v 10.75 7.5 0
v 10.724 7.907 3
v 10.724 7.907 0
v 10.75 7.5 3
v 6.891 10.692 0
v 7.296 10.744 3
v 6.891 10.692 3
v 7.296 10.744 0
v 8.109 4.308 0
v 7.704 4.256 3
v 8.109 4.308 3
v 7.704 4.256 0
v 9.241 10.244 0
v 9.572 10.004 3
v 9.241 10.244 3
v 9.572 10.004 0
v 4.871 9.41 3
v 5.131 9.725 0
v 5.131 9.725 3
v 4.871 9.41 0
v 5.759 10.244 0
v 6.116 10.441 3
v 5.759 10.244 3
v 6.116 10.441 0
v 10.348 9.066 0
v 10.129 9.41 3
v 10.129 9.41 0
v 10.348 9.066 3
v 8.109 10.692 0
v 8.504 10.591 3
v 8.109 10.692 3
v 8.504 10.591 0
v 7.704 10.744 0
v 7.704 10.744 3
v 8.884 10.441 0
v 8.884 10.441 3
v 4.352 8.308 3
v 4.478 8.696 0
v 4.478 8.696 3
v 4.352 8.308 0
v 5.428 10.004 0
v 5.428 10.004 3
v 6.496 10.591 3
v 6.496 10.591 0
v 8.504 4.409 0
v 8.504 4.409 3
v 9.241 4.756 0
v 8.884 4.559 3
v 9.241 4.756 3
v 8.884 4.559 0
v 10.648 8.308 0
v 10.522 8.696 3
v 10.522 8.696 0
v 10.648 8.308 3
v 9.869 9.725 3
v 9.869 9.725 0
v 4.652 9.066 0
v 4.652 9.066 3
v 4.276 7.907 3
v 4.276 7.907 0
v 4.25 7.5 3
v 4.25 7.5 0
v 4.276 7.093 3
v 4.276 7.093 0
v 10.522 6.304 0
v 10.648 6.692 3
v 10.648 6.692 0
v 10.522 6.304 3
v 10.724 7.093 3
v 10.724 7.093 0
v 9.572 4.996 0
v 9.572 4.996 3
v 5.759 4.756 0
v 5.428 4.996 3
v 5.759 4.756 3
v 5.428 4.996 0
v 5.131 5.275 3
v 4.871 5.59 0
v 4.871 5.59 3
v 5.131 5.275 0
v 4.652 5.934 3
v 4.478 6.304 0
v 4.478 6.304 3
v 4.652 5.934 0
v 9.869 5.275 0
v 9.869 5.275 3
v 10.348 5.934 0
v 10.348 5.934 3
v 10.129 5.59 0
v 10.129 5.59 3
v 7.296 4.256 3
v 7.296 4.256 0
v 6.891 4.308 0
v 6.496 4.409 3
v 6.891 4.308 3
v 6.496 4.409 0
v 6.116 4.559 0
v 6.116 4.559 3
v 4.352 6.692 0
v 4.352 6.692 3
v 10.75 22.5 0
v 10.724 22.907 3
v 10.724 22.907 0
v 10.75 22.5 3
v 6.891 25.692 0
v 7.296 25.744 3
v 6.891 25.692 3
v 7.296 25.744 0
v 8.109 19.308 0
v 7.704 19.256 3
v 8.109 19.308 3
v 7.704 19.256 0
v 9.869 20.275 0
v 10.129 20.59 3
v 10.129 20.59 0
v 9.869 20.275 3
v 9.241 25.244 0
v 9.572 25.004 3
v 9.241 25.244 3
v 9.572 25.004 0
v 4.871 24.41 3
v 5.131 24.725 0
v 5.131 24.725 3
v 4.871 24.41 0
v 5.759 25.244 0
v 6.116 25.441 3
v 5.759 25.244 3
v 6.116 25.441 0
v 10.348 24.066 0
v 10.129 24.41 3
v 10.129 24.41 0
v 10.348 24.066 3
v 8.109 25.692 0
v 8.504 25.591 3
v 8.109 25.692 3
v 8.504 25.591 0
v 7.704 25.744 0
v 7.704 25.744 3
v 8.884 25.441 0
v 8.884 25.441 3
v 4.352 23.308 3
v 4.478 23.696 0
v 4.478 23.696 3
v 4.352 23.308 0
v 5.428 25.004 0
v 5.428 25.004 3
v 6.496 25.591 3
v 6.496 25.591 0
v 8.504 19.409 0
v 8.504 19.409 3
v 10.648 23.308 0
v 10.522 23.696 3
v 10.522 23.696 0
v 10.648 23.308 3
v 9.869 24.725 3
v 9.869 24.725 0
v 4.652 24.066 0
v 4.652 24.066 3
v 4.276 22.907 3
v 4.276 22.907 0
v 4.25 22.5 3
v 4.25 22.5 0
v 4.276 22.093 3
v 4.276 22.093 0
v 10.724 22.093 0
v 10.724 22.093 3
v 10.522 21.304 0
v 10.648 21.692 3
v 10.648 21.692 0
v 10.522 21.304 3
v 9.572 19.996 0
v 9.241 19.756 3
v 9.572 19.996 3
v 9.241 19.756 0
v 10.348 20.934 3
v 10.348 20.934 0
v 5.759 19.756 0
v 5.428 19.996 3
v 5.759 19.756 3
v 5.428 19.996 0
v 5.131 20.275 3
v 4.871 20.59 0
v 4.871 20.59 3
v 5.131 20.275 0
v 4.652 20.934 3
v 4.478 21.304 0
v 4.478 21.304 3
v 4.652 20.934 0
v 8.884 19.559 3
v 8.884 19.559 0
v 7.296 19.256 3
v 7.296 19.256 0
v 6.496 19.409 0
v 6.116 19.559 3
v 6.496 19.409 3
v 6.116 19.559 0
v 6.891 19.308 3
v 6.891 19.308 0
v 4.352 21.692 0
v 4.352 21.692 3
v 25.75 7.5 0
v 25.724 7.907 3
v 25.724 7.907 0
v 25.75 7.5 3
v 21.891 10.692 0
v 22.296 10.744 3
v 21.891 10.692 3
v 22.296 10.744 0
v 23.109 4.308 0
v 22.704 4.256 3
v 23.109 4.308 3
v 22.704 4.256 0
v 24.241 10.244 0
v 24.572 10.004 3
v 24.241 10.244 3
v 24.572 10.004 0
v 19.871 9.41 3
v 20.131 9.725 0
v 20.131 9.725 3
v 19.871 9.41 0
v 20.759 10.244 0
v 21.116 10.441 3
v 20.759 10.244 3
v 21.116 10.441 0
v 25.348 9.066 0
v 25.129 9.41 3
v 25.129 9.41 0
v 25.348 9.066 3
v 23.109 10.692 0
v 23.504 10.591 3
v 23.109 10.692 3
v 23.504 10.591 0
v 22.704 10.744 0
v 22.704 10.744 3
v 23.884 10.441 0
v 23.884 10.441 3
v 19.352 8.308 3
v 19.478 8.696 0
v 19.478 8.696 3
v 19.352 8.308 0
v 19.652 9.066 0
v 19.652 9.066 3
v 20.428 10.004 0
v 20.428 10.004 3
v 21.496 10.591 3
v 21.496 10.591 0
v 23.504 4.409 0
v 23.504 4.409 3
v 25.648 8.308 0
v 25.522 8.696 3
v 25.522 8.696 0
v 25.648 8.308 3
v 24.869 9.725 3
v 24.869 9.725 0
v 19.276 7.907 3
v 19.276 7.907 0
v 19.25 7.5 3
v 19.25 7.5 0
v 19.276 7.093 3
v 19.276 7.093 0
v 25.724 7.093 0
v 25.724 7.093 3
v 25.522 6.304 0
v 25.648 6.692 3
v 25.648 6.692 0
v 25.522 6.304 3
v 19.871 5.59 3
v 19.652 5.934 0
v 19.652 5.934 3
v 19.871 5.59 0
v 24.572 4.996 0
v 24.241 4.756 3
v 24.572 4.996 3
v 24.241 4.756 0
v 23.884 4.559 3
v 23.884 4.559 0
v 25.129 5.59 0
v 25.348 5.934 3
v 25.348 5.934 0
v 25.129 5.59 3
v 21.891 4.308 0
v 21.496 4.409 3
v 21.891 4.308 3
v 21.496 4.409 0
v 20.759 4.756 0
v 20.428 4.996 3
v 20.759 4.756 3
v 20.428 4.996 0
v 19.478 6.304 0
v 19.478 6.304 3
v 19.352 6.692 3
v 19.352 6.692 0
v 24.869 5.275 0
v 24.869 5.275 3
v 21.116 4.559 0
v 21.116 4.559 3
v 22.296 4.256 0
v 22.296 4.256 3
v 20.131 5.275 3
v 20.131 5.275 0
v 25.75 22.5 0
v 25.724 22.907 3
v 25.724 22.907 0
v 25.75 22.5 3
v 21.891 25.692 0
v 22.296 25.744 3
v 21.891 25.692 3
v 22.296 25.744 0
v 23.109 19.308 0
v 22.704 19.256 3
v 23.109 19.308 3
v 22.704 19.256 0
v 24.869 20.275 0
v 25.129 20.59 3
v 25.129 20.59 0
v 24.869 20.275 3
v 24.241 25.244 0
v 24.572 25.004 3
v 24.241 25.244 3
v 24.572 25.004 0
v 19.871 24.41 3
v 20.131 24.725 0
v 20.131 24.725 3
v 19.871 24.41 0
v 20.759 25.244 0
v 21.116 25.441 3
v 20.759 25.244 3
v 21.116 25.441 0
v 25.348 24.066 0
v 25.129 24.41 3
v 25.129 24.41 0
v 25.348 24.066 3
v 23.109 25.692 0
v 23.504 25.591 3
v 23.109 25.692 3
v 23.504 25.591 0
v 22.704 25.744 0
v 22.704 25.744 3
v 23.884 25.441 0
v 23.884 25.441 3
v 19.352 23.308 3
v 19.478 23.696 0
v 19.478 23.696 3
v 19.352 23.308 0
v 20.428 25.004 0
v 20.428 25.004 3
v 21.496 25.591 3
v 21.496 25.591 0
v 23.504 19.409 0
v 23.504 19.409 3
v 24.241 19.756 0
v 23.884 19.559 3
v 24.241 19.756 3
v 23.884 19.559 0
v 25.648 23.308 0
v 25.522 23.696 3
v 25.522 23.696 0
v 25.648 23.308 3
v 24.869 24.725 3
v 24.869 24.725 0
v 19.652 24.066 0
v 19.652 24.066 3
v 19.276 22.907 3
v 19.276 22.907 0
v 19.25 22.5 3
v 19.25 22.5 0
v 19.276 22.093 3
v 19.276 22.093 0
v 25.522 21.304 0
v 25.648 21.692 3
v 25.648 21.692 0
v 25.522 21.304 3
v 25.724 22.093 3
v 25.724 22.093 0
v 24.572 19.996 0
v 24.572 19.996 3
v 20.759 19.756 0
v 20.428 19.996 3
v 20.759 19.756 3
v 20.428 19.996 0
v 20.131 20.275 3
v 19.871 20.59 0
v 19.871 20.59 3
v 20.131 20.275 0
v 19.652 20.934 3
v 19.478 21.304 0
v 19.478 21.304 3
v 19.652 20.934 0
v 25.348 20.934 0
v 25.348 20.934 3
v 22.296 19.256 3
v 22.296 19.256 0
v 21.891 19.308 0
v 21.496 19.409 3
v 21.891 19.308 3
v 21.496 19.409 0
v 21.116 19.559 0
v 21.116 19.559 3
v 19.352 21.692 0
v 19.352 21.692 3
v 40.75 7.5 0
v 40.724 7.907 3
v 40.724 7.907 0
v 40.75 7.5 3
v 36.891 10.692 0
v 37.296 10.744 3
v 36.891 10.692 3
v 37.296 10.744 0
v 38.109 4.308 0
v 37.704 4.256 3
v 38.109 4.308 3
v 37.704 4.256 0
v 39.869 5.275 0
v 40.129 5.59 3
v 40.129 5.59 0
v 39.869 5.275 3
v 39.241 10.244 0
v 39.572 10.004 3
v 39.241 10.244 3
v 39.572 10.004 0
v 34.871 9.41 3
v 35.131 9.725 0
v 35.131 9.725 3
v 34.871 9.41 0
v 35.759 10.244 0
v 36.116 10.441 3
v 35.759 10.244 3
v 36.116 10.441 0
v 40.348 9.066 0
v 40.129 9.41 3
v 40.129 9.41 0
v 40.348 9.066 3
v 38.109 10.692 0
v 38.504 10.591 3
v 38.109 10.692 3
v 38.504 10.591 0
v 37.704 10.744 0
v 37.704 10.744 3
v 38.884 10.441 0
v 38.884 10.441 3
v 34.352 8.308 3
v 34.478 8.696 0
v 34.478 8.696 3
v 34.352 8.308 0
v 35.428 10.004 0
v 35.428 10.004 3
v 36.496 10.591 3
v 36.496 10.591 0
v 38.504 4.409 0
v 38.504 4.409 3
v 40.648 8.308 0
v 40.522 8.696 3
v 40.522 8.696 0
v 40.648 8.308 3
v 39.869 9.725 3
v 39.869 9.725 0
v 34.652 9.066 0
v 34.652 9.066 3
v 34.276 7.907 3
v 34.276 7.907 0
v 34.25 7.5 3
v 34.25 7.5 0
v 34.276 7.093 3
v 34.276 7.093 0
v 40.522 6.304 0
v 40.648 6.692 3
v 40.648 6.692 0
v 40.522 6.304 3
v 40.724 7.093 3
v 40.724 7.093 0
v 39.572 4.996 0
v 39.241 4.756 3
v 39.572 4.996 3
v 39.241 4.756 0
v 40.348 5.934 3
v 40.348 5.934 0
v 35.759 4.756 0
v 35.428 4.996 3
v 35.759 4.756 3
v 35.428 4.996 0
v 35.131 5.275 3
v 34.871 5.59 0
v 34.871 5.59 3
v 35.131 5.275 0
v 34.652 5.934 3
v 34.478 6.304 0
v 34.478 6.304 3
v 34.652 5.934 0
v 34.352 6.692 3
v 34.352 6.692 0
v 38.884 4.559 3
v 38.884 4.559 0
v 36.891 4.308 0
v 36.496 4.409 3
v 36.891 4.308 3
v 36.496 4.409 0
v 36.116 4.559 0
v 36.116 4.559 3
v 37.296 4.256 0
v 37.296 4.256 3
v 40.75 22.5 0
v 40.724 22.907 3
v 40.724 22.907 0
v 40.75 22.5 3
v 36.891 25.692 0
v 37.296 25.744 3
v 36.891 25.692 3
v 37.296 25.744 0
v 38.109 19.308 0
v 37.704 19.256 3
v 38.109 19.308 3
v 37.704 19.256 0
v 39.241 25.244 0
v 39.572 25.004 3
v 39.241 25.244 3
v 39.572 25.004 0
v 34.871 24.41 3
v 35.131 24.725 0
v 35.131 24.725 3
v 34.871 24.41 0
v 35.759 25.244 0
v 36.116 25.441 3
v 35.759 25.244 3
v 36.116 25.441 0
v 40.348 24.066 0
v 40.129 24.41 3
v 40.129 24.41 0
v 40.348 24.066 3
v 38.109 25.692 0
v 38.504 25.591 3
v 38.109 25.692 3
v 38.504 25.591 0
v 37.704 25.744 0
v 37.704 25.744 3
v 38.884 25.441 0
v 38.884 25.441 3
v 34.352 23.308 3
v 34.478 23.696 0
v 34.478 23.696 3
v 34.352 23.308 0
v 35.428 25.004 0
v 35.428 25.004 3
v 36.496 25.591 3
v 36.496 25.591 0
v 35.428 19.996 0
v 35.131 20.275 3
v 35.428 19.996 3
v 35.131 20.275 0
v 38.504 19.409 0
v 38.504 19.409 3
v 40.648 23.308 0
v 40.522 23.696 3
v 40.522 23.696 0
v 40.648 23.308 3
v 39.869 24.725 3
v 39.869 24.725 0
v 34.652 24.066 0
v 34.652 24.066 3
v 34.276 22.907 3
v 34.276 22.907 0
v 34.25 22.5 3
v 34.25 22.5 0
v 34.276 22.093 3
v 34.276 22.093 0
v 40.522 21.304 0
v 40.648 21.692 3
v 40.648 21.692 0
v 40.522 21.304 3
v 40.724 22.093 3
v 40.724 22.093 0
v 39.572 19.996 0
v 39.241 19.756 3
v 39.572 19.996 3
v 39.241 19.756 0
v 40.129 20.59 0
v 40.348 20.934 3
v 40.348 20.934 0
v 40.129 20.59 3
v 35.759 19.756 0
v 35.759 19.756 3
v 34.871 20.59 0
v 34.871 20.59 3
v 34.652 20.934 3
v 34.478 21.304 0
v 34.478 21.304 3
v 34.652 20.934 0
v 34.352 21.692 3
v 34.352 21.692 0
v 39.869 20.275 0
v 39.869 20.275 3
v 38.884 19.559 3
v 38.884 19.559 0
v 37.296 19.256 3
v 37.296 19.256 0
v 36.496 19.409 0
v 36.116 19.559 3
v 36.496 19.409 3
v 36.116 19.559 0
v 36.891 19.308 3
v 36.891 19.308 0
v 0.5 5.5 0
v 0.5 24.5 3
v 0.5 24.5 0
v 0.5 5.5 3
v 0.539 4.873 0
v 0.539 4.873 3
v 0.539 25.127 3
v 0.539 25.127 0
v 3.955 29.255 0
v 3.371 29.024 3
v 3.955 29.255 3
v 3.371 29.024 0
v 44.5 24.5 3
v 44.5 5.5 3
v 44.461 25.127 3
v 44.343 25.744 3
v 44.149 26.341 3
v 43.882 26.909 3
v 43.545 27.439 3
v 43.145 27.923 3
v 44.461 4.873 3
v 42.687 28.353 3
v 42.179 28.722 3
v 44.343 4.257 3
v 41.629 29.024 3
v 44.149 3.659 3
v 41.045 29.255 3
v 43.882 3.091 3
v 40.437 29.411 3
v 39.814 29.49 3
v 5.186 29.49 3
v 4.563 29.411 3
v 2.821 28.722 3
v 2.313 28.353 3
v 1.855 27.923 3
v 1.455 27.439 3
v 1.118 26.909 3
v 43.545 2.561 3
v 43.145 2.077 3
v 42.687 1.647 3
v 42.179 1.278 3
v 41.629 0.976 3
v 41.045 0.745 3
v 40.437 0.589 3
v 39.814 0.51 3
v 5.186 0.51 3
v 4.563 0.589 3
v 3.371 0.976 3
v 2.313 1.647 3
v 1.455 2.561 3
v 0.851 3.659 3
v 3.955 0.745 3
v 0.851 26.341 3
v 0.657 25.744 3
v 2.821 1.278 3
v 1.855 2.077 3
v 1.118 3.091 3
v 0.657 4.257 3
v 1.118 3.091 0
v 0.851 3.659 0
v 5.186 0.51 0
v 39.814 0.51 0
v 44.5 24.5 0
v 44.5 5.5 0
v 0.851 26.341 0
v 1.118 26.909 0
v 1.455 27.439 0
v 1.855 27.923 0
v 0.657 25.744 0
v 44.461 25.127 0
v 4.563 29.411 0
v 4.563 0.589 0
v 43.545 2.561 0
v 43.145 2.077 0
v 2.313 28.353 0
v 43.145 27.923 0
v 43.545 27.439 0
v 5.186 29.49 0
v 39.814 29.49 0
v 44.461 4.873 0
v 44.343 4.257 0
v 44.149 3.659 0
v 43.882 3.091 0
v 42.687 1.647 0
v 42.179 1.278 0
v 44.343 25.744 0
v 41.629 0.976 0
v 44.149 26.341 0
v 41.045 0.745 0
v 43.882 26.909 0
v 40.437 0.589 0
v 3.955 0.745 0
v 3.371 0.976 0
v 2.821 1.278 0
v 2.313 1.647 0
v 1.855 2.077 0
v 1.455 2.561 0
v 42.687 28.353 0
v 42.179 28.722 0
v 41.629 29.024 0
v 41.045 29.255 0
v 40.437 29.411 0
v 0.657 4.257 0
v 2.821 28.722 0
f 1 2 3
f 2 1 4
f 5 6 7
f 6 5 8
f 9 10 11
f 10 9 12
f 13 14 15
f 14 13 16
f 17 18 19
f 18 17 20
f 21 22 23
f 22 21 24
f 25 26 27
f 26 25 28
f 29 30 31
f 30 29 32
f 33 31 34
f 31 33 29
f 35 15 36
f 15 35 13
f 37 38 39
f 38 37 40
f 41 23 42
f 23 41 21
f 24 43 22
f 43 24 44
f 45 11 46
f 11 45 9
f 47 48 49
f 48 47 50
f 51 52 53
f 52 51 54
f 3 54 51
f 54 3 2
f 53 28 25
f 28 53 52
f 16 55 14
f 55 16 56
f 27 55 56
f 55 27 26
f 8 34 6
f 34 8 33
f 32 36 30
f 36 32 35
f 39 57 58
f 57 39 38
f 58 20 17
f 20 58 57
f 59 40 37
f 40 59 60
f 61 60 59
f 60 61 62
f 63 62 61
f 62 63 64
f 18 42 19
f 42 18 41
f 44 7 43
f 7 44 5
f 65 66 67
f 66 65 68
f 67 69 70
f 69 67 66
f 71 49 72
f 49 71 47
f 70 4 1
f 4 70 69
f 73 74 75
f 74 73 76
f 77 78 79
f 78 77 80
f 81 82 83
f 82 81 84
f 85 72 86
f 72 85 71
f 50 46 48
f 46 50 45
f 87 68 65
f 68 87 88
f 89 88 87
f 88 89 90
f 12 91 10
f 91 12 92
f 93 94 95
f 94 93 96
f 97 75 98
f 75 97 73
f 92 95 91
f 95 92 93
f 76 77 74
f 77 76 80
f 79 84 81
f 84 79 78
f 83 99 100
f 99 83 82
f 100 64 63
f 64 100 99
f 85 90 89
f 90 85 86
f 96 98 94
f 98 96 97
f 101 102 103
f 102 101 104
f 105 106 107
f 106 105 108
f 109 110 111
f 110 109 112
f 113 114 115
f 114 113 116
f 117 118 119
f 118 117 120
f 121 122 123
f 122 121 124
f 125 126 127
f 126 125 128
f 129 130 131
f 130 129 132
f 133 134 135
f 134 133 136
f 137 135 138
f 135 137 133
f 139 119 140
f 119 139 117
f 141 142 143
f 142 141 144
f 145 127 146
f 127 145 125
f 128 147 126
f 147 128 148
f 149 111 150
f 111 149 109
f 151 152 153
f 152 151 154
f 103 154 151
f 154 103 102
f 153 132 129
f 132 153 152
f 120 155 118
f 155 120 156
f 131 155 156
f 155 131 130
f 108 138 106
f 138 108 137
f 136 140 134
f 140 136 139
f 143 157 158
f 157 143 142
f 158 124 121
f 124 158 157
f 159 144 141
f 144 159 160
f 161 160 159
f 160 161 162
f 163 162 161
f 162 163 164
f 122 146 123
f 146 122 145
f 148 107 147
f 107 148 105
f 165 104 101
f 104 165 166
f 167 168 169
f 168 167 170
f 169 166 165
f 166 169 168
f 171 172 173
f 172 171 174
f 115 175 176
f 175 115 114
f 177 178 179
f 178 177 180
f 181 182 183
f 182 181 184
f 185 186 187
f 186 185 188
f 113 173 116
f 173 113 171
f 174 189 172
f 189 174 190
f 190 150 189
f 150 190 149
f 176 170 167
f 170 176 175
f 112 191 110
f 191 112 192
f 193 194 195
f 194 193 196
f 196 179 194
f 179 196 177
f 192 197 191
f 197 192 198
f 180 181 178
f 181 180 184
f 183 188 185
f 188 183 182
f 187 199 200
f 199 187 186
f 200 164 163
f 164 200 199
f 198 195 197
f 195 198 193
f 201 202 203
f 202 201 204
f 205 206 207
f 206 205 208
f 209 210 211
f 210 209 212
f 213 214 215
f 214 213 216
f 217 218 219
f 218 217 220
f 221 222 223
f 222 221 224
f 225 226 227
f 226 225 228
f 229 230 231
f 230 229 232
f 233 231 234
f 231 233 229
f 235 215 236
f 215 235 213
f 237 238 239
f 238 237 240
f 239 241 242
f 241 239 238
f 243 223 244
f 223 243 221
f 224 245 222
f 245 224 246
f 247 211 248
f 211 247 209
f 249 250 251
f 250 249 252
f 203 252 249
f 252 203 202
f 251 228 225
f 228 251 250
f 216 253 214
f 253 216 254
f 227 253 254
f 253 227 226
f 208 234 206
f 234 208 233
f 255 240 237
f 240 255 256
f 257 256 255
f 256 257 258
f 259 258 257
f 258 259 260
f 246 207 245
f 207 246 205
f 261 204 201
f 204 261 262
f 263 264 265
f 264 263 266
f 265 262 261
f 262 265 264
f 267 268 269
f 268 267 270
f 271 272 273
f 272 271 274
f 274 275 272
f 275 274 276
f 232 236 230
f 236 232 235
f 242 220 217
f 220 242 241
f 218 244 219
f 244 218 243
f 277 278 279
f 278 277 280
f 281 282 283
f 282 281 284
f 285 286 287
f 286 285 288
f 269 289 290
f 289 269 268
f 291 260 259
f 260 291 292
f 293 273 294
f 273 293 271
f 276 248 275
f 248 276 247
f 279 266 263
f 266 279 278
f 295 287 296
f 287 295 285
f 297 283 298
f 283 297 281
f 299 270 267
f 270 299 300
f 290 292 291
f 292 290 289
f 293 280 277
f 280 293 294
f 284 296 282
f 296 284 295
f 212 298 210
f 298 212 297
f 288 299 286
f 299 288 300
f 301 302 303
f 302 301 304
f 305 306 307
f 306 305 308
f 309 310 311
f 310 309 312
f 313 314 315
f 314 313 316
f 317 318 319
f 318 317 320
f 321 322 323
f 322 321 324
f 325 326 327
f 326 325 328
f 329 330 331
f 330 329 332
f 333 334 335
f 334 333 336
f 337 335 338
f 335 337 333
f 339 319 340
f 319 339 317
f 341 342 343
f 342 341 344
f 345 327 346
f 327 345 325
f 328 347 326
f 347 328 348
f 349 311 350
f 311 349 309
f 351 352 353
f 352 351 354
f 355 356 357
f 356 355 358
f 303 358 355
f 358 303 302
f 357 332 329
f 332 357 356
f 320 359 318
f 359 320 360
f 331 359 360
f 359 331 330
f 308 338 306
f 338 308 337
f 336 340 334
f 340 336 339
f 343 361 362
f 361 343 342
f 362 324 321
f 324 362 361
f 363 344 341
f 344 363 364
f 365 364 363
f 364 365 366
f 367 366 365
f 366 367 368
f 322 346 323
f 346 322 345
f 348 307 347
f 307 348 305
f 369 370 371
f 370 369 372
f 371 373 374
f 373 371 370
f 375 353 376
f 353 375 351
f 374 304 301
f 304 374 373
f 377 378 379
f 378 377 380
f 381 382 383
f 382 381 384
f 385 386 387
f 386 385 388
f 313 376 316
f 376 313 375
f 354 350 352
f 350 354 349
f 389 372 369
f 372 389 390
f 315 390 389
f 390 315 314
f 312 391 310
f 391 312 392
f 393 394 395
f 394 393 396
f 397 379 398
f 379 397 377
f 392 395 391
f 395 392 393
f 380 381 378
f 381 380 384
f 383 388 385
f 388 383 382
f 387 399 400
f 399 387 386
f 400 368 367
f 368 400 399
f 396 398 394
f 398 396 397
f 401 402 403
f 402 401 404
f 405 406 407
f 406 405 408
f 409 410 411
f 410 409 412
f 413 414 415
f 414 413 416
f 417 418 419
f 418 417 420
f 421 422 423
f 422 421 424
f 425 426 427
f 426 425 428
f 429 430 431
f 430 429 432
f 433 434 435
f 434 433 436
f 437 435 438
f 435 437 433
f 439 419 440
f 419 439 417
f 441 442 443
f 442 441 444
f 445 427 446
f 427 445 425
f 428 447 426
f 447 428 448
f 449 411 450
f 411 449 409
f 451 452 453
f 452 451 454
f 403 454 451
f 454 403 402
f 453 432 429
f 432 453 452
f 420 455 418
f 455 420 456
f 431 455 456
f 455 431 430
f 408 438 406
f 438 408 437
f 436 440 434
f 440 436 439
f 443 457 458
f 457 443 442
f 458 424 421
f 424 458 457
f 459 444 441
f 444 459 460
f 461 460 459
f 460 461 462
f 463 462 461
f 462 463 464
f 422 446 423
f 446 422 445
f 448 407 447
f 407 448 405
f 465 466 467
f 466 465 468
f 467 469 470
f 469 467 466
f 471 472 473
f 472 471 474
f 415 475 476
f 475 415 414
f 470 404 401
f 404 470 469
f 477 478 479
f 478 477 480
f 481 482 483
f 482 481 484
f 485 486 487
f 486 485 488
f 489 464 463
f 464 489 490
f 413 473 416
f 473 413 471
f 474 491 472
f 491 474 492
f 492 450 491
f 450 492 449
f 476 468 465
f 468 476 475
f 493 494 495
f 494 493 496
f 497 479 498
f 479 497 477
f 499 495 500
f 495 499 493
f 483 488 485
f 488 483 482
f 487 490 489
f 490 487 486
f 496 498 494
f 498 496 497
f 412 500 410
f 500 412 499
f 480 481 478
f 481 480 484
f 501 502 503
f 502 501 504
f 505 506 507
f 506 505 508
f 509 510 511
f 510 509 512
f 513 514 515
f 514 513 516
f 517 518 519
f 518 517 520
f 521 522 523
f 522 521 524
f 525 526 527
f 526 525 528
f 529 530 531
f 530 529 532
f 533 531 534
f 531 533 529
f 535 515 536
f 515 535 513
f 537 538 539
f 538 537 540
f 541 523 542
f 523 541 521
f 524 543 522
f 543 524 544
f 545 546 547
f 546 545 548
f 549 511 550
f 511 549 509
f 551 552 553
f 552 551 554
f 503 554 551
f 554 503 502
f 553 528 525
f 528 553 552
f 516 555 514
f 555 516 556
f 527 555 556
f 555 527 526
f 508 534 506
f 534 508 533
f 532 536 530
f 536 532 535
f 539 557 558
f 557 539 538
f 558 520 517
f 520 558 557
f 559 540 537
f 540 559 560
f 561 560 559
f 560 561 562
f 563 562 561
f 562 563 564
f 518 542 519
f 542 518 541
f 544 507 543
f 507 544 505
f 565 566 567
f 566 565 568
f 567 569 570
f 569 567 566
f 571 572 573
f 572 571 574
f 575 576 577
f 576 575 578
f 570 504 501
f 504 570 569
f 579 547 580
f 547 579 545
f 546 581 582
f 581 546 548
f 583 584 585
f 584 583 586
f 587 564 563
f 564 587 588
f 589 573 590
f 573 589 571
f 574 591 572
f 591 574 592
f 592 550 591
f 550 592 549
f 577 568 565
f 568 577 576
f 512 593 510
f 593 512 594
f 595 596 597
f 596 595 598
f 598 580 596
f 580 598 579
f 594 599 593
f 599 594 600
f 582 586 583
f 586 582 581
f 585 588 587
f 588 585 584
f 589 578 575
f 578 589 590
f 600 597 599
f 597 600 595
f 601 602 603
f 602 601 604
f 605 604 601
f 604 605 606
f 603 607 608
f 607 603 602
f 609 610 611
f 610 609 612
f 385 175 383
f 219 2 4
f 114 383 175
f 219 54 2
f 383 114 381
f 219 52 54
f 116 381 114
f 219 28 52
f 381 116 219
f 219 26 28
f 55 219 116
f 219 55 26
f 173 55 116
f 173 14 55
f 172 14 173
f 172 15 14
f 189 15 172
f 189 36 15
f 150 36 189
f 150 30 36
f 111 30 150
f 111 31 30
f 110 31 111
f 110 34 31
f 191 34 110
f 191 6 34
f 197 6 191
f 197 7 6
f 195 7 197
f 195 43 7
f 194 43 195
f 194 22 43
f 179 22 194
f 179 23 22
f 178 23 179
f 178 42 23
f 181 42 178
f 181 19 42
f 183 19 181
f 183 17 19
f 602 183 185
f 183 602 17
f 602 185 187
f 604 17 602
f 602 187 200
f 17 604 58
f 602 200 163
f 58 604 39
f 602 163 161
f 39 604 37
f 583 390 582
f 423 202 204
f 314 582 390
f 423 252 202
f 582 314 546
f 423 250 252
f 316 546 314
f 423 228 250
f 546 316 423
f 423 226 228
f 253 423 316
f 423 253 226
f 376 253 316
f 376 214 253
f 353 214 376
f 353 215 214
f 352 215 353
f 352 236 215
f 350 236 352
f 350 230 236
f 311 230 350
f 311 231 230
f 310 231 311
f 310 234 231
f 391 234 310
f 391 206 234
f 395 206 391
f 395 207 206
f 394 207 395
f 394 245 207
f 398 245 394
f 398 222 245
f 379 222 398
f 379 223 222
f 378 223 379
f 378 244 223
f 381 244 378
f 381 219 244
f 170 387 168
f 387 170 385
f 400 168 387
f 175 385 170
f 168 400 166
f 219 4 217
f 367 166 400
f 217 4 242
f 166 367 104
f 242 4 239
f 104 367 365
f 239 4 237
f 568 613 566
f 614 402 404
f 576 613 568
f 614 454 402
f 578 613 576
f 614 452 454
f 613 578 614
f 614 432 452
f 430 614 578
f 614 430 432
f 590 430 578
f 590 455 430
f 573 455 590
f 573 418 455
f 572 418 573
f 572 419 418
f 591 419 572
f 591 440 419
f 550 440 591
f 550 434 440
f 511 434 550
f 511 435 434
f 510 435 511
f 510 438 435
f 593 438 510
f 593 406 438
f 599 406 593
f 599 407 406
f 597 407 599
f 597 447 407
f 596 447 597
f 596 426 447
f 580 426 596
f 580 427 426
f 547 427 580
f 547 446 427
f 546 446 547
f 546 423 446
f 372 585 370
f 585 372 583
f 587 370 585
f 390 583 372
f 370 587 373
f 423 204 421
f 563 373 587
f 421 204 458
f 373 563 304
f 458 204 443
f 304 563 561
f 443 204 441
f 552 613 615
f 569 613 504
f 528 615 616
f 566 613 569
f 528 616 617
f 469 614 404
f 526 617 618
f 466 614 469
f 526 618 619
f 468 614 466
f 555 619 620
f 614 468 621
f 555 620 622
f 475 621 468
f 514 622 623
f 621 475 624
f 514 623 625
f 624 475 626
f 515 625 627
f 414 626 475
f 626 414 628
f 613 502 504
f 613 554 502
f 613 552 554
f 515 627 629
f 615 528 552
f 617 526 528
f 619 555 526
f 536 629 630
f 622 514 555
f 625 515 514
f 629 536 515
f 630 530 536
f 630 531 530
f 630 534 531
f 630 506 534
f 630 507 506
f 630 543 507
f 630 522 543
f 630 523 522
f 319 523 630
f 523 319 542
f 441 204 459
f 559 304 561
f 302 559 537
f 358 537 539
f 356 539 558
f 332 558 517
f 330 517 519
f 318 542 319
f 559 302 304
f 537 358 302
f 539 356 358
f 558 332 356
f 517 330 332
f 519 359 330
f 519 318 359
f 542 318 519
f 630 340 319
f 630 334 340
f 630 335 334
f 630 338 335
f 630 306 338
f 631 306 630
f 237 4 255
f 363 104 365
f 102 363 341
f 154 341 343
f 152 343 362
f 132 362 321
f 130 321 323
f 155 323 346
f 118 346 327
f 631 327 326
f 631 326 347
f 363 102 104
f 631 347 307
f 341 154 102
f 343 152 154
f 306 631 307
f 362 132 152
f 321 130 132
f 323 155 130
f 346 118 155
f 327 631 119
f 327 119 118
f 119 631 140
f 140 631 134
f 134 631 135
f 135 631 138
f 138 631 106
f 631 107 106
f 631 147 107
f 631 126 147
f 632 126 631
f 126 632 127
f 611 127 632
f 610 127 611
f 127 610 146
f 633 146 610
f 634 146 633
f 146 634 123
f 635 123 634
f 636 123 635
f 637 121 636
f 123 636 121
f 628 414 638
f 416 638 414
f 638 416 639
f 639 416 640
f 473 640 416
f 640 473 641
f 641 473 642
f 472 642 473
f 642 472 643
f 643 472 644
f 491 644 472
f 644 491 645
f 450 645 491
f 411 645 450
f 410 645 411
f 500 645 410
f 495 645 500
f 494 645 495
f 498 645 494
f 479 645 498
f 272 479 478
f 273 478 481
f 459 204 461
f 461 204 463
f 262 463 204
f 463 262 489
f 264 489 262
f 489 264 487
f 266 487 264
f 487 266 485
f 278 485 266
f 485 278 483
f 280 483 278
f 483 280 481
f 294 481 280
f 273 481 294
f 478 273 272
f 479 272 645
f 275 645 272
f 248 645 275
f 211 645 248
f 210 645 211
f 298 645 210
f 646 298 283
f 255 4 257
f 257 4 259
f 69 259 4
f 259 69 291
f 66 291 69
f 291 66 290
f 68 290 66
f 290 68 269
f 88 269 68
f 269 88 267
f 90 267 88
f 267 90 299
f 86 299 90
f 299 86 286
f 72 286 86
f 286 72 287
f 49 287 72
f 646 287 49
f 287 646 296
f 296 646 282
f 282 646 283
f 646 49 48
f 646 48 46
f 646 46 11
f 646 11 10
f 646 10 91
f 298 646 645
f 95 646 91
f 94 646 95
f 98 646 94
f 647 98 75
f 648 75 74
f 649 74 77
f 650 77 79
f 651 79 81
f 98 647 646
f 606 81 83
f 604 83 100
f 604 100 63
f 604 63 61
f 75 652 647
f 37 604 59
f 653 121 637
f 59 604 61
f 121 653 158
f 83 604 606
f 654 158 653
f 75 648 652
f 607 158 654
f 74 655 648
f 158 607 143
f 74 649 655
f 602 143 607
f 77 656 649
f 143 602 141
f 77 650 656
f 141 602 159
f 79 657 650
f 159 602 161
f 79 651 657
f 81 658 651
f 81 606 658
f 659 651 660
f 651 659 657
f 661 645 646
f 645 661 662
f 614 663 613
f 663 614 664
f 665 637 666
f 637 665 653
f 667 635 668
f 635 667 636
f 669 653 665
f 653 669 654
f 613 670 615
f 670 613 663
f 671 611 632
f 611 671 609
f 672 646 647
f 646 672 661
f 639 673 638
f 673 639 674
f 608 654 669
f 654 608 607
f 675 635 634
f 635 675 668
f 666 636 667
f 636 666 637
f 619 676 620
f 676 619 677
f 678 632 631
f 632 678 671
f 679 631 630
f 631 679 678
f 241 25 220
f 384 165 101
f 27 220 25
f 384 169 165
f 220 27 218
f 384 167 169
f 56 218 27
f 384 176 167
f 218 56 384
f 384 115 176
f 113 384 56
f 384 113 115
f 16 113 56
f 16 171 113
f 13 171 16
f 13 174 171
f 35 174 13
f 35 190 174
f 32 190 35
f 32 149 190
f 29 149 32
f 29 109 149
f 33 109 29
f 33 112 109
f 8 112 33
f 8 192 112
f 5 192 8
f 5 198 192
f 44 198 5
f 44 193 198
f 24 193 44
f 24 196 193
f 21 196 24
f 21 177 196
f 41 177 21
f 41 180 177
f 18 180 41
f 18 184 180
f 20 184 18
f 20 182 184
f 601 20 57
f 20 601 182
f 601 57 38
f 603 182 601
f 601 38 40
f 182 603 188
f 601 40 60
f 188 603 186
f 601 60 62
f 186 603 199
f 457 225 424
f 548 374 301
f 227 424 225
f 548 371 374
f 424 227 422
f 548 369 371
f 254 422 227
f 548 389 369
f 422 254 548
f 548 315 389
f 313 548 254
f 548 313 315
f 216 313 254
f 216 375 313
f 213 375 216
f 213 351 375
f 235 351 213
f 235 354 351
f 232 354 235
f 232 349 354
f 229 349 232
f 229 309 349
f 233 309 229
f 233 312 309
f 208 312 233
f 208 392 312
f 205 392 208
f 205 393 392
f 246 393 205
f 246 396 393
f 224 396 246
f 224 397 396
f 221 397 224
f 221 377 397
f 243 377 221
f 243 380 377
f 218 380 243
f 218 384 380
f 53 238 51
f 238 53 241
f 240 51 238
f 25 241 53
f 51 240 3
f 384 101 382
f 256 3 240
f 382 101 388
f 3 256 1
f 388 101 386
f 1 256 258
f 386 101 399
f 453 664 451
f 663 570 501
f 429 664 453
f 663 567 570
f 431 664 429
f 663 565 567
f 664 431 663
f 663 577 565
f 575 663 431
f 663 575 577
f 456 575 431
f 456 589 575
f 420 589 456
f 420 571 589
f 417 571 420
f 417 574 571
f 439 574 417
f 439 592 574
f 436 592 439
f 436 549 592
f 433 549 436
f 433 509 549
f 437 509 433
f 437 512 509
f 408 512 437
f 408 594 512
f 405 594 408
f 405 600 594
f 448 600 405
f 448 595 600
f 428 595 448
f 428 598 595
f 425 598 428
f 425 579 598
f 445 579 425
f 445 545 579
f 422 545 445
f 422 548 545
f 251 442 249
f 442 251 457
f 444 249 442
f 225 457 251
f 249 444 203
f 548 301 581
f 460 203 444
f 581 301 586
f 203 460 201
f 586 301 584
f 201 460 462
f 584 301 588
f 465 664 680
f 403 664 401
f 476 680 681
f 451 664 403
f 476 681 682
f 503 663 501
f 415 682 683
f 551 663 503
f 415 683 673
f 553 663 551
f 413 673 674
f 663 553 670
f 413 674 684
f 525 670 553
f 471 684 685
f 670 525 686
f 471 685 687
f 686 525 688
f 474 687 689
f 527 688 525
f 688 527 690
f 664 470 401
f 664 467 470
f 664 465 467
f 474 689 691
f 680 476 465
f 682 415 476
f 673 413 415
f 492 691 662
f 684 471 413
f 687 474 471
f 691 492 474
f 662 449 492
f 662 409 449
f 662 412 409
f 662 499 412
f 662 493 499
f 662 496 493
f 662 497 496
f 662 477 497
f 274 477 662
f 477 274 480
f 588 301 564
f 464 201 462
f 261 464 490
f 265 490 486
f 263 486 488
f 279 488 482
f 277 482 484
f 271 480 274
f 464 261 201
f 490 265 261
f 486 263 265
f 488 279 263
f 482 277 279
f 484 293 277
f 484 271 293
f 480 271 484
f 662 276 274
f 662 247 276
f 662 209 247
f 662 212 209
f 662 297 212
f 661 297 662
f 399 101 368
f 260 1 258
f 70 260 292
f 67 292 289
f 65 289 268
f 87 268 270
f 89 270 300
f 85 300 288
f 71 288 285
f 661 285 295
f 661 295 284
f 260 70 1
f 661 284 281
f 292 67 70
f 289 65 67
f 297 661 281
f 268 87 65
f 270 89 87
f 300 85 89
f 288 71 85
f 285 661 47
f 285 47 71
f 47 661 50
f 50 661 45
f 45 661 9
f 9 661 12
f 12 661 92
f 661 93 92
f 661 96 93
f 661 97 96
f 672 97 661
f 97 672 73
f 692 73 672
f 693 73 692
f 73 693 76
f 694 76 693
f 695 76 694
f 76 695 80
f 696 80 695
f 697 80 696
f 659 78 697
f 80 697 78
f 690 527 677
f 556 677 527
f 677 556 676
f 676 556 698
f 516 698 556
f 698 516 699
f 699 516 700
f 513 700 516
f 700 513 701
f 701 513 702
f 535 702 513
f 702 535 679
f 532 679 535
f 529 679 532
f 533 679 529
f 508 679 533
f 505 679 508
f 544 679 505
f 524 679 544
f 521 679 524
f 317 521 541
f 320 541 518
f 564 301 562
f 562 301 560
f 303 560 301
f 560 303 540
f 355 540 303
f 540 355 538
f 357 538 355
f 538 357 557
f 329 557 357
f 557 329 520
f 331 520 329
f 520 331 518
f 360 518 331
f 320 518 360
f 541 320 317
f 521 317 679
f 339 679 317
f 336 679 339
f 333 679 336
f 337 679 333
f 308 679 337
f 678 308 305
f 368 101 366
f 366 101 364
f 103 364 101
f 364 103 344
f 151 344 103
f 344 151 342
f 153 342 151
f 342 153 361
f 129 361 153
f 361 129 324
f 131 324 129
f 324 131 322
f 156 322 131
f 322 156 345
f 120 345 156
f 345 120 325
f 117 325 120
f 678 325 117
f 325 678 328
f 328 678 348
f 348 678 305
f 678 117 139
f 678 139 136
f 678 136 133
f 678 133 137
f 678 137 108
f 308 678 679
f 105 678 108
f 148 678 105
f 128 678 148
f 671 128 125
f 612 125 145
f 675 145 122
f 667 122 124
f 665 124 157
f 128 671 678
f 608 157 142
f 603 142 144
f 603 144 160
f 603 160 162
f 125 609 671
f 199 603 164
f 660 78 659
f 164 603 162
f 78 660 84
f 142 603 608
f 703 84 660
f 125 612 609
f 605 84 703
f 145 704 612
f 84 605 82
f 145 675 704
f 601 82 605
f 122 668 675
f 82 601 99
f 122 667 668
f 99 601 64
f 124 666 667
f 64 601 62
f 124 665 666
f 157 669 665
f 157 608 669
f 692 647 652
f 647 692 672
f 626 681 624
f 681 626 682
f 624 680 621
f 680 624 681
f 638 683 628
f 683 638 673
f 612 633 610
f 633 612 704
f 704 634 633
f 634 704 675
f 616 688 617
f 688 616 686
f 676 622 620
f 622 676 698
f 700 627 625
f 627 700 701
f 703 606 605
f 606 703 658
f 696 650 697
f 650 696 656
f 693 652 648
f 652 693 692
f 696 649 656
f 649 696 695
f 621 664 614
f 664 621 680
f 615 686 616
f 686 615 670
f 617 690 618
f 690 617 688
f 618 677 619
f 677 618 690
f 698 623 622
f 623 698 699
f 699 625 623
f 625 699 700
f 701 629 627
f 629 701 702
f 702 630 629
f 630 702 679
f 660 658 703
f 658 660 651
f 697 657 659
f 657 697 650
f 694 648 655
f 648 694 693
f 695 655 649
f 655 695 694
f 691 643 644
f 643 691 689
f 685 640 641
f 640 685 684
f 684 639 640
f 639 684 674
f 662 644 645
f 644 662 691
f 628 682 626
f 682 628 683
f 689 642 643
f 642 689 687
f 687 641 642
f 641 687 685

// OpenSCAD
// Generated by SolidPython 1.1.3 on 2023-01-09 14:53:50
$fn = 50;


difference() {
	union() {
		translate(v = [22.5000000000, 15.0000000000, 0]) {
			rotate(a = [0, 0, 0]) {
				hull() {
					translate(v = [-17.0000000000, 9.5000000000, 0]) {
						rotate(a = [0, 0, 0]) {
							translate(v = [0, 0, 0]) {
								rotate(a = [0, 0, 0]) {
									cylinder(h = 3, r = 5);
								}
							}
						}
					}
					translate(v = [17.0000000000, 9.5000000000, 0]) {
						rotate(a = [0, 0, 0]) {
							translate(v = [0, 0, 0]) {
								rotate(a = [0, 0, 0]) {
									cylinder(h = 3, r = 5);
								}
							}
						}
					}
					translate(v = [-17.0000000000, -9.5000000000, 0]) {
						rotate(a = [0, 0, 0]) {
							translate(v = [0, 0, 0]) {
								rotate(a = [0, 0, 0]) {
									cylinder(h = 3, r = 5);
								}
							}
						}
					}
					translate(v = [17.0000000000, -9.5000000000, 0]) {
						rotate(a = [0, 0, 0]) {
							translate(v = [0, 0, 0]) {
								rotate(a = [0, 0, 0]) {
									cylinder(h = 3, r = 5);
								}
							}
						}
					}
				}
			}
		}
	}
	union() {
		translate(v = [7.5000000000, 7.5000000000, 0]) {
			rotate(a = [0, 0, 0]) {
				translate(v = [0, 0, -50]) {
					rotate(a = [0, 0, 0]) {
						cylinder(h = 100, r = 3.2500000000);
					}
				}
			}
		}
		translate(v = [7.5000000000, 22.5000000000, 0]) {
			rotate(a = [0, 0, 0]) {
				translate(v = [0, 0, -50]) {
					rotate(a = [0, 0, 0]) {
						cylinder(h = 100, r = 3.2500000000);
					}
				}
			}
		}
		translate(v = [22.5000000000, 7.5000000000, 0]) {
			rotate(a = [0, 0, 0]) {
				translate(v = [0, 0, -50]) {
					rotate(a = [0, 0, 0]) {
						cylinder(h = 100, r = 3.2500000000);
					}
				}
			}
		}
		translate(v = [22.5000000000, 22.5000000000, 0]) {
			rotate(a = [0, 0, 0]) {
				translate(v = [0, 0, -50]) {
					rotate(a = [0, 0, 0]) {
						cylinder(h = 100, r = 3.2500000000);
					}
				}
			}
		}
		translate(v = [37.5000000000, 7.5000000000, 0]) {
			rotate(a = [0, 0, 0]) {
				translate(v = [0, 0, -50]) {
					rotate(a = [0, 0, 0]) {
						cylinder(h = 100, r = 3.2500000000);
					}
				}
			}
		}
		translate(v = [37.5000000000, 22.5000000000, 0]) {
			rotate(a = [0, 0, 0]) {
				translate(v = [0, 0, -50]) {
					rotate(a = [0, 0, 0]) {
						cylinder(h = 100, r = 3.2500000000);
					}
				}
			}
		}
	}
}
/***********************************************
*********      SolidPython code:      **********
************************************************
 
from solid import *
import os
import subprocess

import oomB

import opsc_library_gen

mode = "laser"
#mode = "3d_print"

defined_objects = {}

radius_dict = {}
countersunk_dict = {}


def set_mode(m):
    global mode
    mode = m
    radius_dict['M6'] = 6.5/2
    radius_dict['M3'] = 3.3/2
    if mode == "laser":
        radius_dict['M6'] = 6/2
        radius_dict['M3'] = 3/2

    countersunk_dict['M3'] = {}
    countersunk_dict['M3']['little_rad'] = radius_dict['M3']
    countersunk_dict['M3']['big_rad'] = (5.5+0.6)/2
    if mode == "laser":
        countersunk_dict['M3']['big_rad'] = (4.75+0.6)/2
        countersunk_dict['M3']['little_rad'] = (4.75+0.6)/2

    countersunk_dict['M3']['height'] = 1.7


def opsc_make_object(filename, objects, save_type="none",resolution=50, layers = 1, tilediff = 200, mode="laser"):
    set_mode(mode)
    save_type = save_type.lower()
    os.makedirs(os.path.dirname(filename), exist_ok=True)
    final_object = opsc_get_object(objects)
    # Save the final object to the specified filename    
    scad_render_to_file(final_object, filename, file_header='$fn = %s;' % resolution, include_orig_code=True)
    if mode == "laser":
        filename_laser = filename.replace(".scad","-flat.scad")
        scad_render_to_file(getLaser(final_object, layers=layers, tilediff=tilediff), filename_laser, file_header='$fn = %s;' % resolution, include_orig_code=True)
        if save_type == "all":
            saveToAll(filename_laser)
        elif save_type == "dxf":
            saveToDxf(filename_laser)
    if save_type == "all":
        saveToAll(filename)
    elif save_type == "dxf":
        saveToDxf(filename)


def opsc_get_object(objects):
    # Create the solidpython objects
    positive_objects = [get_opsc_item(obj) for obj in objects if obj['type'] == 'positive']
    negative_objects = [get_opsc_item(obj) for obj in objects if obj['type'] == 'negative']
    # Union the positive objects
    positive_object = union()(*positive_objects)
    # Union the negative objects
    negative_object = union()(*negative_objects)
    # Create the final object by subtracting the negative objects from the positive objects
    return difference()(positive_object, negative_object)

def get_opsc_item(params):
    # A dictionary to map radius string values to numerical values
    #radius_dict = {'small': 5, 'medium': 10, 'large': 15}
    # An array of function names for basic shapes
    basic_shapes = ['cube', 'sphere', 'cylinder']
    
    # An array of function names for other shapes
    other_shapes = ['hole', 'slot', 'rounded_rectangle', 'countersunk']
    


    # Convert radius to r if present, and remove radius from the params dictionary
    if 'radius' in params:
        if isinstance(params['radius'], str):
            # Use the radius_dict to map the radius string value to a numerical value
            params['r'] = radius_dict[params['radius']]
        else:
            params['r'] = params['radius']
        del params['radius']
    

    # Check if the object type is a basic shape
    if params['shape'] in basic_shapes:
        # Remove shape and unexpected dictionary values
        allowed_keys = {'size', 'r', 'r1', 'r2', 'd', 'h', 'rw', 'rh', 'dw', 'dh'}
        shape_params = {k: v for k, v in params.items() if k in allowed_keys}

        # Call the corresponding function for the shape parameter, using ** notation to pass the shape_params dictionary as keyword arguments
        return get_opsc_transform(params,globals()[params['shape']](**shape_params))
    
    # If the object type is not a basic shape, check if it's a defined object or one of the other shapes
    elif params['shape'] in other_shapes:
        # Call the corresponding function for the shape parameter, passing the params dictionary as an argument
        p2 = copy.deepcopy(params)
        p2["pos"] = [0,0,0]
        return get_opsc_transform(params,globals()[params['shape']](p2))
    
    # If the object is not a basic shape or a defined object, try to import it from a .scad file
    else:
        obj = defined_objects[params['shape']]
        return get_opsc_transform(params,obj)

def get_opsc_transform(params, solid_obj):
    # Rotate the object based on the 'rot' field in the params dictionary, or the 'rotX', 'rotY', and 'rotZ' fields if 'rot' is not present
    rot = params.get('rot', [])
    if rot:
        rotX, rotY, rotZ = rot
    else:
        rotX = params.get('rotX', 0)
        rotY = params.get('rotY', 0)
        rotZ = params.get('rotZ', 0)
    solid_obj = rotate([rotX, rotY, rotZ])(solid_obj)

    # Translate the object based on the 'pos' field in the params dictionary, or the 'x', 'y', and 'z' fields if 'pos' is not present
    pos = params.get('pos', [])
    if pos:
        x, y, z = pos
    else:
        x = params.get('x', 0)
        y = params.get('y', 0)
        z = params.get('z', 0)
    solid_obj = translate([x, y, z])(solid_obj)
    return solid_obj


import random

def opsc_easy_array(type, shape, repeats, pos_start, shift_arr, **kwargs):
    for i in range(0,3):
        repeats.append(1)
        pos_start.append(0)
        shift_arr.append(0)
    return_objects = []

    for x in range(0,repeats[0]):
        for y in range(0,repeats[1]):
            for z in range(0,repeats[2]):
                return_objects.append(opsc_easy(type, shape, pos=[pos_start[0]+x*shift_arr[0],pos_start[1]+y*shift_arr[1],pos_start[2]+z*shift_arr[2]], **kwargs))
    return return_objects                



def opsc_easy(type, shape, **kwargs):
    obj = {
        'type': type,
        'shape': shape
    }
    for param in ['size', 'r', 'r1', 'r2', 'd', 'h', 'rw', 'rh', 'dw', 'dh', 'pos', 'x', 'y', 'z', 'rot', 'rotX', 'rotY', 'rotZ', "w"]:
        if param in kwargs:
            obj[param] = kwargs[param]
    return obj

def hole(params):
    p2 = copy.deepcopy(params)  
    # Check if the radius is a string and replace it with the corresponding value from the dictionary
    if isinstance(p2['r'], str):
        p2['r'] = radius_dict[p2['r']]
    
    # Set the height to 100 if not specified
    if 'h' not in p2:
        p2['h'] = 100
        p2["pos"] = [0,0,-50]
    p2["center"] = True
    # Create the cylinder object
    p2["shape"] = "cylinder"
    p2["type"] = "positive"

    return get_opsc_item(p2)

import copy

def countersunk(params):
    p2 = copy.deepcopy(params)
    counter_rad = p2['r']
    p2['r'] = radius_dict[p2['r']]
    hp = copy.deepcopy(p2)
    hp["type"] = "positive"
    hp["shape"] = "hole"
    del hp["rot"]
    hol = get_opsc_item(hp)
    
    cp = copy.deepcopy(p2)
    cp["h"] = countersunk_dict[counter_rad]["height"]
    cp["r2"] = countersunk_dict[counter_rad]["little_rad"]
    cp["r1"] = countersunk_dict[counter_rad]["big_rad"]
    del cp["r"]
    del cp["rot"]
    cp["type"] = "positive"
    cp["shape"] = "cylinder"
    cp["pos"] = [0,0,0]

    top = get_opsc_item(cp)
    return union()(hol,top)



def slot(params):  
    p2 = copy.deepcopy(params) 
    if isinstance(p2['r'], str):
        p2['r'] = radius_dict[p2['r']]
    p2["type"] = "positive"
    p2["shape"] = "hole"
    del p2["rot"]
    p2["pos"] = [0,0,0]
    left = copy.deepcopy(p2)
    right = copy.deepcopy(p2)
    left["pos"][0] = p2["w"] / 2 - p2["r"] 
    
    right["pos"][0] = -p2["w"] / 2 + p2["r"] 
    pass
    leftObj = get_opsc_item(left)
    rightObj = get_opsc_item(right)
    return hull()(leftObj, rightObj)

def rounded_rectangle(params):   
    p2 = copy.deepcopy(params) 
    p2["h"] = p2["size"][2]
    p2["pos"] = p2.get("pos", [0, 0, 0]) 
    p2["type"] = "positive"
    p2["shape"] = "hole"
    p2["pos"] = [0,0,0]
    
    if 'rot' in p2:
        del p2["rot"]   
    if 'r' not in p2:
        p2["r"] = 5 
    tl = copy.deepcopy(p2)
    tr = copy.deepcopy(p2)
    bl = copy.deepcopy(p2)
    br = copy.deepcopy(p2)
    tl["pos"][0] = -(p2["size"][0] - p2["r"]*2)/2
    tl["pos"][1] = (p2["size"][1] - p2["r"]*2)/2
    tr["pos"][0] = (p2["size"][0] - p2["r"]*2)/2
    tr["pos"][1] = (p2["size"][1] - p2["r"]*2)/2
    bl["pos"][0] = -(p2["size"][0] - p2["r"]*2)/2
    bl["pos"][1] = -(p2["size"][1] - p2["r"]*2)/2
    br["pos"][0] = (p2["size"][0] - p2["r"]*2)/2
    br["pos"][1] = -(p2["size"][1] - p2["r"]*2)/2
    del tl["size"]
    del tr["size"]
    del bl["size"]
    del br["size"]
    tlo = get_opsc_item(tl)
    tro = get_opsc_item(tr)
    blo = get_opsc_item(bl)
    bro = get_opsc_item(br)    
    return hull()(tlo, tro, blo, bro)



def import_scad_object(filename):
    # Import the .scad file and convert it to a solidpython object
    #filename = "parts"
    obj = import_scad(filename)
    return obj.main()
    


import os
import solid as solidpython

# A dictionary to store the defined objects


def load_scad_objects():
    opsc_library_gen.gen_library(defined_objects)

import random

def test(num_objects):
    objects = []
    for i in range(num_objects):
        # Choose a random shape
        #shape = random.choice(['cube', 'sphere', 'cylinder', 'hole', 'slot', "rounded_rectangle"])
        shape = random.choice(["rounded_rectangle"])

        # Choose a random type
        type = random.choice(['positive', 'negative'])
        
        # Create an empty object dictionary
        obj = {'shape': shape, 'type': type}
        
        # Set shape-specific parameters
        if obj['shape'] in ['cube']:
            obj['size'] =  [random.uniform(5, 15), random.uniform(5, 15), random.uniform(5, 15)]
        if obj['shape'] in ['rounded_rectangle']:
            obj['size'] =  [random.uniform(5, 15), random.uniform(5, 15), random.uniform(5, 15)]
            obj['r'] = random.uniform(0.5, 5)
        elif obj['shape'] == 'sphere':
            obj['r'] = random.uniform(5, 15)
        elif obj['shape'] in ['cylinder', 'hole']:
            obj['r'] = random.uniform(0.5, 5)
            obj['h'] = random.uniform(5, 15)
        elif obj['shape'] == 'slot':
            obj['r'] = random.uniform(0.5, 5)
            obj['h'] = random.uniform(5, 15)
            obj['w'] = random.uniform(5, 15)
        
        # Set a random position and rotation
        obj['pos'] = [random.uniform(-20, 20), random.uniform(-20, 20), random.uniform(-20, 20)]
        obj['rot'] = [random.uniform(-180, 180), random.uniform(-180, 180), random.uniform(-180, 180)]
        
        # Add the object to the list
        objects.append(obj)
    return objects

####### old file saving
def saveToAll(fileIn):
    saveToDxf(fileIn)
    saveToPng(fileIn)
    saveToStl(fileIn)
    saveToSvg(fileIn)

def saveToDxf(fileIn, fileOut="", copy_to_laser=True):
    if fileOut == "":
        fileOut = fileIn.replace(".scad",".dxf")
    saveToFile(fileIn, fileOut)


    
def saveToPng(fileIn, fileOut="",extra="--render"):
    if fileOut == "":
        fileOut = fileIn.replace(".scad",".png")
    saveToFile(fileIn, fileOut)

def saveToStl(fileIn, fileOut=""):
    if fileOut == "":
        fileOut = fileIn.replace(".scad",".stl")
    saveToFile(fileIn, fileOut)
    
def saveToSvg(fileIn, fileOut=""):
    if fileOut == "":
        fileOut = fileIn.replace(".scad",".svg")
    saveToFile(fileIn, fileOut)

def saveToFile(fileIn, fileOut,extra=""):
    #extra = extra + " --colorscheme Tomorrow"

    launchStr = 'openscad -o "' + fileOut + '"' + extra + ' "' + fileIn + '"'
    if ".png" in fileOut:
        launchStr = launchStr + " --render"
    print("            saveToFile launch string: " + launchStr)
    subprocess.run(launchStr)
    x=0

def getLaser(final_object,start=1.5,layers=1,thickness=3,tilediff=200):
        rv= []

        for x in range(layers):
            rv.append(translate([0,x*tilediff,0])(
                    projection()(
                        intersection()(translate([-500,-500,start+x*thickness])(cube(size=[1000,1000,0.1])),
                            final_object
                        )
                    )
            )
            )
            
        return union()(rv)

set_mode("laser")
load_scad_objects() 
 
************************************************/
